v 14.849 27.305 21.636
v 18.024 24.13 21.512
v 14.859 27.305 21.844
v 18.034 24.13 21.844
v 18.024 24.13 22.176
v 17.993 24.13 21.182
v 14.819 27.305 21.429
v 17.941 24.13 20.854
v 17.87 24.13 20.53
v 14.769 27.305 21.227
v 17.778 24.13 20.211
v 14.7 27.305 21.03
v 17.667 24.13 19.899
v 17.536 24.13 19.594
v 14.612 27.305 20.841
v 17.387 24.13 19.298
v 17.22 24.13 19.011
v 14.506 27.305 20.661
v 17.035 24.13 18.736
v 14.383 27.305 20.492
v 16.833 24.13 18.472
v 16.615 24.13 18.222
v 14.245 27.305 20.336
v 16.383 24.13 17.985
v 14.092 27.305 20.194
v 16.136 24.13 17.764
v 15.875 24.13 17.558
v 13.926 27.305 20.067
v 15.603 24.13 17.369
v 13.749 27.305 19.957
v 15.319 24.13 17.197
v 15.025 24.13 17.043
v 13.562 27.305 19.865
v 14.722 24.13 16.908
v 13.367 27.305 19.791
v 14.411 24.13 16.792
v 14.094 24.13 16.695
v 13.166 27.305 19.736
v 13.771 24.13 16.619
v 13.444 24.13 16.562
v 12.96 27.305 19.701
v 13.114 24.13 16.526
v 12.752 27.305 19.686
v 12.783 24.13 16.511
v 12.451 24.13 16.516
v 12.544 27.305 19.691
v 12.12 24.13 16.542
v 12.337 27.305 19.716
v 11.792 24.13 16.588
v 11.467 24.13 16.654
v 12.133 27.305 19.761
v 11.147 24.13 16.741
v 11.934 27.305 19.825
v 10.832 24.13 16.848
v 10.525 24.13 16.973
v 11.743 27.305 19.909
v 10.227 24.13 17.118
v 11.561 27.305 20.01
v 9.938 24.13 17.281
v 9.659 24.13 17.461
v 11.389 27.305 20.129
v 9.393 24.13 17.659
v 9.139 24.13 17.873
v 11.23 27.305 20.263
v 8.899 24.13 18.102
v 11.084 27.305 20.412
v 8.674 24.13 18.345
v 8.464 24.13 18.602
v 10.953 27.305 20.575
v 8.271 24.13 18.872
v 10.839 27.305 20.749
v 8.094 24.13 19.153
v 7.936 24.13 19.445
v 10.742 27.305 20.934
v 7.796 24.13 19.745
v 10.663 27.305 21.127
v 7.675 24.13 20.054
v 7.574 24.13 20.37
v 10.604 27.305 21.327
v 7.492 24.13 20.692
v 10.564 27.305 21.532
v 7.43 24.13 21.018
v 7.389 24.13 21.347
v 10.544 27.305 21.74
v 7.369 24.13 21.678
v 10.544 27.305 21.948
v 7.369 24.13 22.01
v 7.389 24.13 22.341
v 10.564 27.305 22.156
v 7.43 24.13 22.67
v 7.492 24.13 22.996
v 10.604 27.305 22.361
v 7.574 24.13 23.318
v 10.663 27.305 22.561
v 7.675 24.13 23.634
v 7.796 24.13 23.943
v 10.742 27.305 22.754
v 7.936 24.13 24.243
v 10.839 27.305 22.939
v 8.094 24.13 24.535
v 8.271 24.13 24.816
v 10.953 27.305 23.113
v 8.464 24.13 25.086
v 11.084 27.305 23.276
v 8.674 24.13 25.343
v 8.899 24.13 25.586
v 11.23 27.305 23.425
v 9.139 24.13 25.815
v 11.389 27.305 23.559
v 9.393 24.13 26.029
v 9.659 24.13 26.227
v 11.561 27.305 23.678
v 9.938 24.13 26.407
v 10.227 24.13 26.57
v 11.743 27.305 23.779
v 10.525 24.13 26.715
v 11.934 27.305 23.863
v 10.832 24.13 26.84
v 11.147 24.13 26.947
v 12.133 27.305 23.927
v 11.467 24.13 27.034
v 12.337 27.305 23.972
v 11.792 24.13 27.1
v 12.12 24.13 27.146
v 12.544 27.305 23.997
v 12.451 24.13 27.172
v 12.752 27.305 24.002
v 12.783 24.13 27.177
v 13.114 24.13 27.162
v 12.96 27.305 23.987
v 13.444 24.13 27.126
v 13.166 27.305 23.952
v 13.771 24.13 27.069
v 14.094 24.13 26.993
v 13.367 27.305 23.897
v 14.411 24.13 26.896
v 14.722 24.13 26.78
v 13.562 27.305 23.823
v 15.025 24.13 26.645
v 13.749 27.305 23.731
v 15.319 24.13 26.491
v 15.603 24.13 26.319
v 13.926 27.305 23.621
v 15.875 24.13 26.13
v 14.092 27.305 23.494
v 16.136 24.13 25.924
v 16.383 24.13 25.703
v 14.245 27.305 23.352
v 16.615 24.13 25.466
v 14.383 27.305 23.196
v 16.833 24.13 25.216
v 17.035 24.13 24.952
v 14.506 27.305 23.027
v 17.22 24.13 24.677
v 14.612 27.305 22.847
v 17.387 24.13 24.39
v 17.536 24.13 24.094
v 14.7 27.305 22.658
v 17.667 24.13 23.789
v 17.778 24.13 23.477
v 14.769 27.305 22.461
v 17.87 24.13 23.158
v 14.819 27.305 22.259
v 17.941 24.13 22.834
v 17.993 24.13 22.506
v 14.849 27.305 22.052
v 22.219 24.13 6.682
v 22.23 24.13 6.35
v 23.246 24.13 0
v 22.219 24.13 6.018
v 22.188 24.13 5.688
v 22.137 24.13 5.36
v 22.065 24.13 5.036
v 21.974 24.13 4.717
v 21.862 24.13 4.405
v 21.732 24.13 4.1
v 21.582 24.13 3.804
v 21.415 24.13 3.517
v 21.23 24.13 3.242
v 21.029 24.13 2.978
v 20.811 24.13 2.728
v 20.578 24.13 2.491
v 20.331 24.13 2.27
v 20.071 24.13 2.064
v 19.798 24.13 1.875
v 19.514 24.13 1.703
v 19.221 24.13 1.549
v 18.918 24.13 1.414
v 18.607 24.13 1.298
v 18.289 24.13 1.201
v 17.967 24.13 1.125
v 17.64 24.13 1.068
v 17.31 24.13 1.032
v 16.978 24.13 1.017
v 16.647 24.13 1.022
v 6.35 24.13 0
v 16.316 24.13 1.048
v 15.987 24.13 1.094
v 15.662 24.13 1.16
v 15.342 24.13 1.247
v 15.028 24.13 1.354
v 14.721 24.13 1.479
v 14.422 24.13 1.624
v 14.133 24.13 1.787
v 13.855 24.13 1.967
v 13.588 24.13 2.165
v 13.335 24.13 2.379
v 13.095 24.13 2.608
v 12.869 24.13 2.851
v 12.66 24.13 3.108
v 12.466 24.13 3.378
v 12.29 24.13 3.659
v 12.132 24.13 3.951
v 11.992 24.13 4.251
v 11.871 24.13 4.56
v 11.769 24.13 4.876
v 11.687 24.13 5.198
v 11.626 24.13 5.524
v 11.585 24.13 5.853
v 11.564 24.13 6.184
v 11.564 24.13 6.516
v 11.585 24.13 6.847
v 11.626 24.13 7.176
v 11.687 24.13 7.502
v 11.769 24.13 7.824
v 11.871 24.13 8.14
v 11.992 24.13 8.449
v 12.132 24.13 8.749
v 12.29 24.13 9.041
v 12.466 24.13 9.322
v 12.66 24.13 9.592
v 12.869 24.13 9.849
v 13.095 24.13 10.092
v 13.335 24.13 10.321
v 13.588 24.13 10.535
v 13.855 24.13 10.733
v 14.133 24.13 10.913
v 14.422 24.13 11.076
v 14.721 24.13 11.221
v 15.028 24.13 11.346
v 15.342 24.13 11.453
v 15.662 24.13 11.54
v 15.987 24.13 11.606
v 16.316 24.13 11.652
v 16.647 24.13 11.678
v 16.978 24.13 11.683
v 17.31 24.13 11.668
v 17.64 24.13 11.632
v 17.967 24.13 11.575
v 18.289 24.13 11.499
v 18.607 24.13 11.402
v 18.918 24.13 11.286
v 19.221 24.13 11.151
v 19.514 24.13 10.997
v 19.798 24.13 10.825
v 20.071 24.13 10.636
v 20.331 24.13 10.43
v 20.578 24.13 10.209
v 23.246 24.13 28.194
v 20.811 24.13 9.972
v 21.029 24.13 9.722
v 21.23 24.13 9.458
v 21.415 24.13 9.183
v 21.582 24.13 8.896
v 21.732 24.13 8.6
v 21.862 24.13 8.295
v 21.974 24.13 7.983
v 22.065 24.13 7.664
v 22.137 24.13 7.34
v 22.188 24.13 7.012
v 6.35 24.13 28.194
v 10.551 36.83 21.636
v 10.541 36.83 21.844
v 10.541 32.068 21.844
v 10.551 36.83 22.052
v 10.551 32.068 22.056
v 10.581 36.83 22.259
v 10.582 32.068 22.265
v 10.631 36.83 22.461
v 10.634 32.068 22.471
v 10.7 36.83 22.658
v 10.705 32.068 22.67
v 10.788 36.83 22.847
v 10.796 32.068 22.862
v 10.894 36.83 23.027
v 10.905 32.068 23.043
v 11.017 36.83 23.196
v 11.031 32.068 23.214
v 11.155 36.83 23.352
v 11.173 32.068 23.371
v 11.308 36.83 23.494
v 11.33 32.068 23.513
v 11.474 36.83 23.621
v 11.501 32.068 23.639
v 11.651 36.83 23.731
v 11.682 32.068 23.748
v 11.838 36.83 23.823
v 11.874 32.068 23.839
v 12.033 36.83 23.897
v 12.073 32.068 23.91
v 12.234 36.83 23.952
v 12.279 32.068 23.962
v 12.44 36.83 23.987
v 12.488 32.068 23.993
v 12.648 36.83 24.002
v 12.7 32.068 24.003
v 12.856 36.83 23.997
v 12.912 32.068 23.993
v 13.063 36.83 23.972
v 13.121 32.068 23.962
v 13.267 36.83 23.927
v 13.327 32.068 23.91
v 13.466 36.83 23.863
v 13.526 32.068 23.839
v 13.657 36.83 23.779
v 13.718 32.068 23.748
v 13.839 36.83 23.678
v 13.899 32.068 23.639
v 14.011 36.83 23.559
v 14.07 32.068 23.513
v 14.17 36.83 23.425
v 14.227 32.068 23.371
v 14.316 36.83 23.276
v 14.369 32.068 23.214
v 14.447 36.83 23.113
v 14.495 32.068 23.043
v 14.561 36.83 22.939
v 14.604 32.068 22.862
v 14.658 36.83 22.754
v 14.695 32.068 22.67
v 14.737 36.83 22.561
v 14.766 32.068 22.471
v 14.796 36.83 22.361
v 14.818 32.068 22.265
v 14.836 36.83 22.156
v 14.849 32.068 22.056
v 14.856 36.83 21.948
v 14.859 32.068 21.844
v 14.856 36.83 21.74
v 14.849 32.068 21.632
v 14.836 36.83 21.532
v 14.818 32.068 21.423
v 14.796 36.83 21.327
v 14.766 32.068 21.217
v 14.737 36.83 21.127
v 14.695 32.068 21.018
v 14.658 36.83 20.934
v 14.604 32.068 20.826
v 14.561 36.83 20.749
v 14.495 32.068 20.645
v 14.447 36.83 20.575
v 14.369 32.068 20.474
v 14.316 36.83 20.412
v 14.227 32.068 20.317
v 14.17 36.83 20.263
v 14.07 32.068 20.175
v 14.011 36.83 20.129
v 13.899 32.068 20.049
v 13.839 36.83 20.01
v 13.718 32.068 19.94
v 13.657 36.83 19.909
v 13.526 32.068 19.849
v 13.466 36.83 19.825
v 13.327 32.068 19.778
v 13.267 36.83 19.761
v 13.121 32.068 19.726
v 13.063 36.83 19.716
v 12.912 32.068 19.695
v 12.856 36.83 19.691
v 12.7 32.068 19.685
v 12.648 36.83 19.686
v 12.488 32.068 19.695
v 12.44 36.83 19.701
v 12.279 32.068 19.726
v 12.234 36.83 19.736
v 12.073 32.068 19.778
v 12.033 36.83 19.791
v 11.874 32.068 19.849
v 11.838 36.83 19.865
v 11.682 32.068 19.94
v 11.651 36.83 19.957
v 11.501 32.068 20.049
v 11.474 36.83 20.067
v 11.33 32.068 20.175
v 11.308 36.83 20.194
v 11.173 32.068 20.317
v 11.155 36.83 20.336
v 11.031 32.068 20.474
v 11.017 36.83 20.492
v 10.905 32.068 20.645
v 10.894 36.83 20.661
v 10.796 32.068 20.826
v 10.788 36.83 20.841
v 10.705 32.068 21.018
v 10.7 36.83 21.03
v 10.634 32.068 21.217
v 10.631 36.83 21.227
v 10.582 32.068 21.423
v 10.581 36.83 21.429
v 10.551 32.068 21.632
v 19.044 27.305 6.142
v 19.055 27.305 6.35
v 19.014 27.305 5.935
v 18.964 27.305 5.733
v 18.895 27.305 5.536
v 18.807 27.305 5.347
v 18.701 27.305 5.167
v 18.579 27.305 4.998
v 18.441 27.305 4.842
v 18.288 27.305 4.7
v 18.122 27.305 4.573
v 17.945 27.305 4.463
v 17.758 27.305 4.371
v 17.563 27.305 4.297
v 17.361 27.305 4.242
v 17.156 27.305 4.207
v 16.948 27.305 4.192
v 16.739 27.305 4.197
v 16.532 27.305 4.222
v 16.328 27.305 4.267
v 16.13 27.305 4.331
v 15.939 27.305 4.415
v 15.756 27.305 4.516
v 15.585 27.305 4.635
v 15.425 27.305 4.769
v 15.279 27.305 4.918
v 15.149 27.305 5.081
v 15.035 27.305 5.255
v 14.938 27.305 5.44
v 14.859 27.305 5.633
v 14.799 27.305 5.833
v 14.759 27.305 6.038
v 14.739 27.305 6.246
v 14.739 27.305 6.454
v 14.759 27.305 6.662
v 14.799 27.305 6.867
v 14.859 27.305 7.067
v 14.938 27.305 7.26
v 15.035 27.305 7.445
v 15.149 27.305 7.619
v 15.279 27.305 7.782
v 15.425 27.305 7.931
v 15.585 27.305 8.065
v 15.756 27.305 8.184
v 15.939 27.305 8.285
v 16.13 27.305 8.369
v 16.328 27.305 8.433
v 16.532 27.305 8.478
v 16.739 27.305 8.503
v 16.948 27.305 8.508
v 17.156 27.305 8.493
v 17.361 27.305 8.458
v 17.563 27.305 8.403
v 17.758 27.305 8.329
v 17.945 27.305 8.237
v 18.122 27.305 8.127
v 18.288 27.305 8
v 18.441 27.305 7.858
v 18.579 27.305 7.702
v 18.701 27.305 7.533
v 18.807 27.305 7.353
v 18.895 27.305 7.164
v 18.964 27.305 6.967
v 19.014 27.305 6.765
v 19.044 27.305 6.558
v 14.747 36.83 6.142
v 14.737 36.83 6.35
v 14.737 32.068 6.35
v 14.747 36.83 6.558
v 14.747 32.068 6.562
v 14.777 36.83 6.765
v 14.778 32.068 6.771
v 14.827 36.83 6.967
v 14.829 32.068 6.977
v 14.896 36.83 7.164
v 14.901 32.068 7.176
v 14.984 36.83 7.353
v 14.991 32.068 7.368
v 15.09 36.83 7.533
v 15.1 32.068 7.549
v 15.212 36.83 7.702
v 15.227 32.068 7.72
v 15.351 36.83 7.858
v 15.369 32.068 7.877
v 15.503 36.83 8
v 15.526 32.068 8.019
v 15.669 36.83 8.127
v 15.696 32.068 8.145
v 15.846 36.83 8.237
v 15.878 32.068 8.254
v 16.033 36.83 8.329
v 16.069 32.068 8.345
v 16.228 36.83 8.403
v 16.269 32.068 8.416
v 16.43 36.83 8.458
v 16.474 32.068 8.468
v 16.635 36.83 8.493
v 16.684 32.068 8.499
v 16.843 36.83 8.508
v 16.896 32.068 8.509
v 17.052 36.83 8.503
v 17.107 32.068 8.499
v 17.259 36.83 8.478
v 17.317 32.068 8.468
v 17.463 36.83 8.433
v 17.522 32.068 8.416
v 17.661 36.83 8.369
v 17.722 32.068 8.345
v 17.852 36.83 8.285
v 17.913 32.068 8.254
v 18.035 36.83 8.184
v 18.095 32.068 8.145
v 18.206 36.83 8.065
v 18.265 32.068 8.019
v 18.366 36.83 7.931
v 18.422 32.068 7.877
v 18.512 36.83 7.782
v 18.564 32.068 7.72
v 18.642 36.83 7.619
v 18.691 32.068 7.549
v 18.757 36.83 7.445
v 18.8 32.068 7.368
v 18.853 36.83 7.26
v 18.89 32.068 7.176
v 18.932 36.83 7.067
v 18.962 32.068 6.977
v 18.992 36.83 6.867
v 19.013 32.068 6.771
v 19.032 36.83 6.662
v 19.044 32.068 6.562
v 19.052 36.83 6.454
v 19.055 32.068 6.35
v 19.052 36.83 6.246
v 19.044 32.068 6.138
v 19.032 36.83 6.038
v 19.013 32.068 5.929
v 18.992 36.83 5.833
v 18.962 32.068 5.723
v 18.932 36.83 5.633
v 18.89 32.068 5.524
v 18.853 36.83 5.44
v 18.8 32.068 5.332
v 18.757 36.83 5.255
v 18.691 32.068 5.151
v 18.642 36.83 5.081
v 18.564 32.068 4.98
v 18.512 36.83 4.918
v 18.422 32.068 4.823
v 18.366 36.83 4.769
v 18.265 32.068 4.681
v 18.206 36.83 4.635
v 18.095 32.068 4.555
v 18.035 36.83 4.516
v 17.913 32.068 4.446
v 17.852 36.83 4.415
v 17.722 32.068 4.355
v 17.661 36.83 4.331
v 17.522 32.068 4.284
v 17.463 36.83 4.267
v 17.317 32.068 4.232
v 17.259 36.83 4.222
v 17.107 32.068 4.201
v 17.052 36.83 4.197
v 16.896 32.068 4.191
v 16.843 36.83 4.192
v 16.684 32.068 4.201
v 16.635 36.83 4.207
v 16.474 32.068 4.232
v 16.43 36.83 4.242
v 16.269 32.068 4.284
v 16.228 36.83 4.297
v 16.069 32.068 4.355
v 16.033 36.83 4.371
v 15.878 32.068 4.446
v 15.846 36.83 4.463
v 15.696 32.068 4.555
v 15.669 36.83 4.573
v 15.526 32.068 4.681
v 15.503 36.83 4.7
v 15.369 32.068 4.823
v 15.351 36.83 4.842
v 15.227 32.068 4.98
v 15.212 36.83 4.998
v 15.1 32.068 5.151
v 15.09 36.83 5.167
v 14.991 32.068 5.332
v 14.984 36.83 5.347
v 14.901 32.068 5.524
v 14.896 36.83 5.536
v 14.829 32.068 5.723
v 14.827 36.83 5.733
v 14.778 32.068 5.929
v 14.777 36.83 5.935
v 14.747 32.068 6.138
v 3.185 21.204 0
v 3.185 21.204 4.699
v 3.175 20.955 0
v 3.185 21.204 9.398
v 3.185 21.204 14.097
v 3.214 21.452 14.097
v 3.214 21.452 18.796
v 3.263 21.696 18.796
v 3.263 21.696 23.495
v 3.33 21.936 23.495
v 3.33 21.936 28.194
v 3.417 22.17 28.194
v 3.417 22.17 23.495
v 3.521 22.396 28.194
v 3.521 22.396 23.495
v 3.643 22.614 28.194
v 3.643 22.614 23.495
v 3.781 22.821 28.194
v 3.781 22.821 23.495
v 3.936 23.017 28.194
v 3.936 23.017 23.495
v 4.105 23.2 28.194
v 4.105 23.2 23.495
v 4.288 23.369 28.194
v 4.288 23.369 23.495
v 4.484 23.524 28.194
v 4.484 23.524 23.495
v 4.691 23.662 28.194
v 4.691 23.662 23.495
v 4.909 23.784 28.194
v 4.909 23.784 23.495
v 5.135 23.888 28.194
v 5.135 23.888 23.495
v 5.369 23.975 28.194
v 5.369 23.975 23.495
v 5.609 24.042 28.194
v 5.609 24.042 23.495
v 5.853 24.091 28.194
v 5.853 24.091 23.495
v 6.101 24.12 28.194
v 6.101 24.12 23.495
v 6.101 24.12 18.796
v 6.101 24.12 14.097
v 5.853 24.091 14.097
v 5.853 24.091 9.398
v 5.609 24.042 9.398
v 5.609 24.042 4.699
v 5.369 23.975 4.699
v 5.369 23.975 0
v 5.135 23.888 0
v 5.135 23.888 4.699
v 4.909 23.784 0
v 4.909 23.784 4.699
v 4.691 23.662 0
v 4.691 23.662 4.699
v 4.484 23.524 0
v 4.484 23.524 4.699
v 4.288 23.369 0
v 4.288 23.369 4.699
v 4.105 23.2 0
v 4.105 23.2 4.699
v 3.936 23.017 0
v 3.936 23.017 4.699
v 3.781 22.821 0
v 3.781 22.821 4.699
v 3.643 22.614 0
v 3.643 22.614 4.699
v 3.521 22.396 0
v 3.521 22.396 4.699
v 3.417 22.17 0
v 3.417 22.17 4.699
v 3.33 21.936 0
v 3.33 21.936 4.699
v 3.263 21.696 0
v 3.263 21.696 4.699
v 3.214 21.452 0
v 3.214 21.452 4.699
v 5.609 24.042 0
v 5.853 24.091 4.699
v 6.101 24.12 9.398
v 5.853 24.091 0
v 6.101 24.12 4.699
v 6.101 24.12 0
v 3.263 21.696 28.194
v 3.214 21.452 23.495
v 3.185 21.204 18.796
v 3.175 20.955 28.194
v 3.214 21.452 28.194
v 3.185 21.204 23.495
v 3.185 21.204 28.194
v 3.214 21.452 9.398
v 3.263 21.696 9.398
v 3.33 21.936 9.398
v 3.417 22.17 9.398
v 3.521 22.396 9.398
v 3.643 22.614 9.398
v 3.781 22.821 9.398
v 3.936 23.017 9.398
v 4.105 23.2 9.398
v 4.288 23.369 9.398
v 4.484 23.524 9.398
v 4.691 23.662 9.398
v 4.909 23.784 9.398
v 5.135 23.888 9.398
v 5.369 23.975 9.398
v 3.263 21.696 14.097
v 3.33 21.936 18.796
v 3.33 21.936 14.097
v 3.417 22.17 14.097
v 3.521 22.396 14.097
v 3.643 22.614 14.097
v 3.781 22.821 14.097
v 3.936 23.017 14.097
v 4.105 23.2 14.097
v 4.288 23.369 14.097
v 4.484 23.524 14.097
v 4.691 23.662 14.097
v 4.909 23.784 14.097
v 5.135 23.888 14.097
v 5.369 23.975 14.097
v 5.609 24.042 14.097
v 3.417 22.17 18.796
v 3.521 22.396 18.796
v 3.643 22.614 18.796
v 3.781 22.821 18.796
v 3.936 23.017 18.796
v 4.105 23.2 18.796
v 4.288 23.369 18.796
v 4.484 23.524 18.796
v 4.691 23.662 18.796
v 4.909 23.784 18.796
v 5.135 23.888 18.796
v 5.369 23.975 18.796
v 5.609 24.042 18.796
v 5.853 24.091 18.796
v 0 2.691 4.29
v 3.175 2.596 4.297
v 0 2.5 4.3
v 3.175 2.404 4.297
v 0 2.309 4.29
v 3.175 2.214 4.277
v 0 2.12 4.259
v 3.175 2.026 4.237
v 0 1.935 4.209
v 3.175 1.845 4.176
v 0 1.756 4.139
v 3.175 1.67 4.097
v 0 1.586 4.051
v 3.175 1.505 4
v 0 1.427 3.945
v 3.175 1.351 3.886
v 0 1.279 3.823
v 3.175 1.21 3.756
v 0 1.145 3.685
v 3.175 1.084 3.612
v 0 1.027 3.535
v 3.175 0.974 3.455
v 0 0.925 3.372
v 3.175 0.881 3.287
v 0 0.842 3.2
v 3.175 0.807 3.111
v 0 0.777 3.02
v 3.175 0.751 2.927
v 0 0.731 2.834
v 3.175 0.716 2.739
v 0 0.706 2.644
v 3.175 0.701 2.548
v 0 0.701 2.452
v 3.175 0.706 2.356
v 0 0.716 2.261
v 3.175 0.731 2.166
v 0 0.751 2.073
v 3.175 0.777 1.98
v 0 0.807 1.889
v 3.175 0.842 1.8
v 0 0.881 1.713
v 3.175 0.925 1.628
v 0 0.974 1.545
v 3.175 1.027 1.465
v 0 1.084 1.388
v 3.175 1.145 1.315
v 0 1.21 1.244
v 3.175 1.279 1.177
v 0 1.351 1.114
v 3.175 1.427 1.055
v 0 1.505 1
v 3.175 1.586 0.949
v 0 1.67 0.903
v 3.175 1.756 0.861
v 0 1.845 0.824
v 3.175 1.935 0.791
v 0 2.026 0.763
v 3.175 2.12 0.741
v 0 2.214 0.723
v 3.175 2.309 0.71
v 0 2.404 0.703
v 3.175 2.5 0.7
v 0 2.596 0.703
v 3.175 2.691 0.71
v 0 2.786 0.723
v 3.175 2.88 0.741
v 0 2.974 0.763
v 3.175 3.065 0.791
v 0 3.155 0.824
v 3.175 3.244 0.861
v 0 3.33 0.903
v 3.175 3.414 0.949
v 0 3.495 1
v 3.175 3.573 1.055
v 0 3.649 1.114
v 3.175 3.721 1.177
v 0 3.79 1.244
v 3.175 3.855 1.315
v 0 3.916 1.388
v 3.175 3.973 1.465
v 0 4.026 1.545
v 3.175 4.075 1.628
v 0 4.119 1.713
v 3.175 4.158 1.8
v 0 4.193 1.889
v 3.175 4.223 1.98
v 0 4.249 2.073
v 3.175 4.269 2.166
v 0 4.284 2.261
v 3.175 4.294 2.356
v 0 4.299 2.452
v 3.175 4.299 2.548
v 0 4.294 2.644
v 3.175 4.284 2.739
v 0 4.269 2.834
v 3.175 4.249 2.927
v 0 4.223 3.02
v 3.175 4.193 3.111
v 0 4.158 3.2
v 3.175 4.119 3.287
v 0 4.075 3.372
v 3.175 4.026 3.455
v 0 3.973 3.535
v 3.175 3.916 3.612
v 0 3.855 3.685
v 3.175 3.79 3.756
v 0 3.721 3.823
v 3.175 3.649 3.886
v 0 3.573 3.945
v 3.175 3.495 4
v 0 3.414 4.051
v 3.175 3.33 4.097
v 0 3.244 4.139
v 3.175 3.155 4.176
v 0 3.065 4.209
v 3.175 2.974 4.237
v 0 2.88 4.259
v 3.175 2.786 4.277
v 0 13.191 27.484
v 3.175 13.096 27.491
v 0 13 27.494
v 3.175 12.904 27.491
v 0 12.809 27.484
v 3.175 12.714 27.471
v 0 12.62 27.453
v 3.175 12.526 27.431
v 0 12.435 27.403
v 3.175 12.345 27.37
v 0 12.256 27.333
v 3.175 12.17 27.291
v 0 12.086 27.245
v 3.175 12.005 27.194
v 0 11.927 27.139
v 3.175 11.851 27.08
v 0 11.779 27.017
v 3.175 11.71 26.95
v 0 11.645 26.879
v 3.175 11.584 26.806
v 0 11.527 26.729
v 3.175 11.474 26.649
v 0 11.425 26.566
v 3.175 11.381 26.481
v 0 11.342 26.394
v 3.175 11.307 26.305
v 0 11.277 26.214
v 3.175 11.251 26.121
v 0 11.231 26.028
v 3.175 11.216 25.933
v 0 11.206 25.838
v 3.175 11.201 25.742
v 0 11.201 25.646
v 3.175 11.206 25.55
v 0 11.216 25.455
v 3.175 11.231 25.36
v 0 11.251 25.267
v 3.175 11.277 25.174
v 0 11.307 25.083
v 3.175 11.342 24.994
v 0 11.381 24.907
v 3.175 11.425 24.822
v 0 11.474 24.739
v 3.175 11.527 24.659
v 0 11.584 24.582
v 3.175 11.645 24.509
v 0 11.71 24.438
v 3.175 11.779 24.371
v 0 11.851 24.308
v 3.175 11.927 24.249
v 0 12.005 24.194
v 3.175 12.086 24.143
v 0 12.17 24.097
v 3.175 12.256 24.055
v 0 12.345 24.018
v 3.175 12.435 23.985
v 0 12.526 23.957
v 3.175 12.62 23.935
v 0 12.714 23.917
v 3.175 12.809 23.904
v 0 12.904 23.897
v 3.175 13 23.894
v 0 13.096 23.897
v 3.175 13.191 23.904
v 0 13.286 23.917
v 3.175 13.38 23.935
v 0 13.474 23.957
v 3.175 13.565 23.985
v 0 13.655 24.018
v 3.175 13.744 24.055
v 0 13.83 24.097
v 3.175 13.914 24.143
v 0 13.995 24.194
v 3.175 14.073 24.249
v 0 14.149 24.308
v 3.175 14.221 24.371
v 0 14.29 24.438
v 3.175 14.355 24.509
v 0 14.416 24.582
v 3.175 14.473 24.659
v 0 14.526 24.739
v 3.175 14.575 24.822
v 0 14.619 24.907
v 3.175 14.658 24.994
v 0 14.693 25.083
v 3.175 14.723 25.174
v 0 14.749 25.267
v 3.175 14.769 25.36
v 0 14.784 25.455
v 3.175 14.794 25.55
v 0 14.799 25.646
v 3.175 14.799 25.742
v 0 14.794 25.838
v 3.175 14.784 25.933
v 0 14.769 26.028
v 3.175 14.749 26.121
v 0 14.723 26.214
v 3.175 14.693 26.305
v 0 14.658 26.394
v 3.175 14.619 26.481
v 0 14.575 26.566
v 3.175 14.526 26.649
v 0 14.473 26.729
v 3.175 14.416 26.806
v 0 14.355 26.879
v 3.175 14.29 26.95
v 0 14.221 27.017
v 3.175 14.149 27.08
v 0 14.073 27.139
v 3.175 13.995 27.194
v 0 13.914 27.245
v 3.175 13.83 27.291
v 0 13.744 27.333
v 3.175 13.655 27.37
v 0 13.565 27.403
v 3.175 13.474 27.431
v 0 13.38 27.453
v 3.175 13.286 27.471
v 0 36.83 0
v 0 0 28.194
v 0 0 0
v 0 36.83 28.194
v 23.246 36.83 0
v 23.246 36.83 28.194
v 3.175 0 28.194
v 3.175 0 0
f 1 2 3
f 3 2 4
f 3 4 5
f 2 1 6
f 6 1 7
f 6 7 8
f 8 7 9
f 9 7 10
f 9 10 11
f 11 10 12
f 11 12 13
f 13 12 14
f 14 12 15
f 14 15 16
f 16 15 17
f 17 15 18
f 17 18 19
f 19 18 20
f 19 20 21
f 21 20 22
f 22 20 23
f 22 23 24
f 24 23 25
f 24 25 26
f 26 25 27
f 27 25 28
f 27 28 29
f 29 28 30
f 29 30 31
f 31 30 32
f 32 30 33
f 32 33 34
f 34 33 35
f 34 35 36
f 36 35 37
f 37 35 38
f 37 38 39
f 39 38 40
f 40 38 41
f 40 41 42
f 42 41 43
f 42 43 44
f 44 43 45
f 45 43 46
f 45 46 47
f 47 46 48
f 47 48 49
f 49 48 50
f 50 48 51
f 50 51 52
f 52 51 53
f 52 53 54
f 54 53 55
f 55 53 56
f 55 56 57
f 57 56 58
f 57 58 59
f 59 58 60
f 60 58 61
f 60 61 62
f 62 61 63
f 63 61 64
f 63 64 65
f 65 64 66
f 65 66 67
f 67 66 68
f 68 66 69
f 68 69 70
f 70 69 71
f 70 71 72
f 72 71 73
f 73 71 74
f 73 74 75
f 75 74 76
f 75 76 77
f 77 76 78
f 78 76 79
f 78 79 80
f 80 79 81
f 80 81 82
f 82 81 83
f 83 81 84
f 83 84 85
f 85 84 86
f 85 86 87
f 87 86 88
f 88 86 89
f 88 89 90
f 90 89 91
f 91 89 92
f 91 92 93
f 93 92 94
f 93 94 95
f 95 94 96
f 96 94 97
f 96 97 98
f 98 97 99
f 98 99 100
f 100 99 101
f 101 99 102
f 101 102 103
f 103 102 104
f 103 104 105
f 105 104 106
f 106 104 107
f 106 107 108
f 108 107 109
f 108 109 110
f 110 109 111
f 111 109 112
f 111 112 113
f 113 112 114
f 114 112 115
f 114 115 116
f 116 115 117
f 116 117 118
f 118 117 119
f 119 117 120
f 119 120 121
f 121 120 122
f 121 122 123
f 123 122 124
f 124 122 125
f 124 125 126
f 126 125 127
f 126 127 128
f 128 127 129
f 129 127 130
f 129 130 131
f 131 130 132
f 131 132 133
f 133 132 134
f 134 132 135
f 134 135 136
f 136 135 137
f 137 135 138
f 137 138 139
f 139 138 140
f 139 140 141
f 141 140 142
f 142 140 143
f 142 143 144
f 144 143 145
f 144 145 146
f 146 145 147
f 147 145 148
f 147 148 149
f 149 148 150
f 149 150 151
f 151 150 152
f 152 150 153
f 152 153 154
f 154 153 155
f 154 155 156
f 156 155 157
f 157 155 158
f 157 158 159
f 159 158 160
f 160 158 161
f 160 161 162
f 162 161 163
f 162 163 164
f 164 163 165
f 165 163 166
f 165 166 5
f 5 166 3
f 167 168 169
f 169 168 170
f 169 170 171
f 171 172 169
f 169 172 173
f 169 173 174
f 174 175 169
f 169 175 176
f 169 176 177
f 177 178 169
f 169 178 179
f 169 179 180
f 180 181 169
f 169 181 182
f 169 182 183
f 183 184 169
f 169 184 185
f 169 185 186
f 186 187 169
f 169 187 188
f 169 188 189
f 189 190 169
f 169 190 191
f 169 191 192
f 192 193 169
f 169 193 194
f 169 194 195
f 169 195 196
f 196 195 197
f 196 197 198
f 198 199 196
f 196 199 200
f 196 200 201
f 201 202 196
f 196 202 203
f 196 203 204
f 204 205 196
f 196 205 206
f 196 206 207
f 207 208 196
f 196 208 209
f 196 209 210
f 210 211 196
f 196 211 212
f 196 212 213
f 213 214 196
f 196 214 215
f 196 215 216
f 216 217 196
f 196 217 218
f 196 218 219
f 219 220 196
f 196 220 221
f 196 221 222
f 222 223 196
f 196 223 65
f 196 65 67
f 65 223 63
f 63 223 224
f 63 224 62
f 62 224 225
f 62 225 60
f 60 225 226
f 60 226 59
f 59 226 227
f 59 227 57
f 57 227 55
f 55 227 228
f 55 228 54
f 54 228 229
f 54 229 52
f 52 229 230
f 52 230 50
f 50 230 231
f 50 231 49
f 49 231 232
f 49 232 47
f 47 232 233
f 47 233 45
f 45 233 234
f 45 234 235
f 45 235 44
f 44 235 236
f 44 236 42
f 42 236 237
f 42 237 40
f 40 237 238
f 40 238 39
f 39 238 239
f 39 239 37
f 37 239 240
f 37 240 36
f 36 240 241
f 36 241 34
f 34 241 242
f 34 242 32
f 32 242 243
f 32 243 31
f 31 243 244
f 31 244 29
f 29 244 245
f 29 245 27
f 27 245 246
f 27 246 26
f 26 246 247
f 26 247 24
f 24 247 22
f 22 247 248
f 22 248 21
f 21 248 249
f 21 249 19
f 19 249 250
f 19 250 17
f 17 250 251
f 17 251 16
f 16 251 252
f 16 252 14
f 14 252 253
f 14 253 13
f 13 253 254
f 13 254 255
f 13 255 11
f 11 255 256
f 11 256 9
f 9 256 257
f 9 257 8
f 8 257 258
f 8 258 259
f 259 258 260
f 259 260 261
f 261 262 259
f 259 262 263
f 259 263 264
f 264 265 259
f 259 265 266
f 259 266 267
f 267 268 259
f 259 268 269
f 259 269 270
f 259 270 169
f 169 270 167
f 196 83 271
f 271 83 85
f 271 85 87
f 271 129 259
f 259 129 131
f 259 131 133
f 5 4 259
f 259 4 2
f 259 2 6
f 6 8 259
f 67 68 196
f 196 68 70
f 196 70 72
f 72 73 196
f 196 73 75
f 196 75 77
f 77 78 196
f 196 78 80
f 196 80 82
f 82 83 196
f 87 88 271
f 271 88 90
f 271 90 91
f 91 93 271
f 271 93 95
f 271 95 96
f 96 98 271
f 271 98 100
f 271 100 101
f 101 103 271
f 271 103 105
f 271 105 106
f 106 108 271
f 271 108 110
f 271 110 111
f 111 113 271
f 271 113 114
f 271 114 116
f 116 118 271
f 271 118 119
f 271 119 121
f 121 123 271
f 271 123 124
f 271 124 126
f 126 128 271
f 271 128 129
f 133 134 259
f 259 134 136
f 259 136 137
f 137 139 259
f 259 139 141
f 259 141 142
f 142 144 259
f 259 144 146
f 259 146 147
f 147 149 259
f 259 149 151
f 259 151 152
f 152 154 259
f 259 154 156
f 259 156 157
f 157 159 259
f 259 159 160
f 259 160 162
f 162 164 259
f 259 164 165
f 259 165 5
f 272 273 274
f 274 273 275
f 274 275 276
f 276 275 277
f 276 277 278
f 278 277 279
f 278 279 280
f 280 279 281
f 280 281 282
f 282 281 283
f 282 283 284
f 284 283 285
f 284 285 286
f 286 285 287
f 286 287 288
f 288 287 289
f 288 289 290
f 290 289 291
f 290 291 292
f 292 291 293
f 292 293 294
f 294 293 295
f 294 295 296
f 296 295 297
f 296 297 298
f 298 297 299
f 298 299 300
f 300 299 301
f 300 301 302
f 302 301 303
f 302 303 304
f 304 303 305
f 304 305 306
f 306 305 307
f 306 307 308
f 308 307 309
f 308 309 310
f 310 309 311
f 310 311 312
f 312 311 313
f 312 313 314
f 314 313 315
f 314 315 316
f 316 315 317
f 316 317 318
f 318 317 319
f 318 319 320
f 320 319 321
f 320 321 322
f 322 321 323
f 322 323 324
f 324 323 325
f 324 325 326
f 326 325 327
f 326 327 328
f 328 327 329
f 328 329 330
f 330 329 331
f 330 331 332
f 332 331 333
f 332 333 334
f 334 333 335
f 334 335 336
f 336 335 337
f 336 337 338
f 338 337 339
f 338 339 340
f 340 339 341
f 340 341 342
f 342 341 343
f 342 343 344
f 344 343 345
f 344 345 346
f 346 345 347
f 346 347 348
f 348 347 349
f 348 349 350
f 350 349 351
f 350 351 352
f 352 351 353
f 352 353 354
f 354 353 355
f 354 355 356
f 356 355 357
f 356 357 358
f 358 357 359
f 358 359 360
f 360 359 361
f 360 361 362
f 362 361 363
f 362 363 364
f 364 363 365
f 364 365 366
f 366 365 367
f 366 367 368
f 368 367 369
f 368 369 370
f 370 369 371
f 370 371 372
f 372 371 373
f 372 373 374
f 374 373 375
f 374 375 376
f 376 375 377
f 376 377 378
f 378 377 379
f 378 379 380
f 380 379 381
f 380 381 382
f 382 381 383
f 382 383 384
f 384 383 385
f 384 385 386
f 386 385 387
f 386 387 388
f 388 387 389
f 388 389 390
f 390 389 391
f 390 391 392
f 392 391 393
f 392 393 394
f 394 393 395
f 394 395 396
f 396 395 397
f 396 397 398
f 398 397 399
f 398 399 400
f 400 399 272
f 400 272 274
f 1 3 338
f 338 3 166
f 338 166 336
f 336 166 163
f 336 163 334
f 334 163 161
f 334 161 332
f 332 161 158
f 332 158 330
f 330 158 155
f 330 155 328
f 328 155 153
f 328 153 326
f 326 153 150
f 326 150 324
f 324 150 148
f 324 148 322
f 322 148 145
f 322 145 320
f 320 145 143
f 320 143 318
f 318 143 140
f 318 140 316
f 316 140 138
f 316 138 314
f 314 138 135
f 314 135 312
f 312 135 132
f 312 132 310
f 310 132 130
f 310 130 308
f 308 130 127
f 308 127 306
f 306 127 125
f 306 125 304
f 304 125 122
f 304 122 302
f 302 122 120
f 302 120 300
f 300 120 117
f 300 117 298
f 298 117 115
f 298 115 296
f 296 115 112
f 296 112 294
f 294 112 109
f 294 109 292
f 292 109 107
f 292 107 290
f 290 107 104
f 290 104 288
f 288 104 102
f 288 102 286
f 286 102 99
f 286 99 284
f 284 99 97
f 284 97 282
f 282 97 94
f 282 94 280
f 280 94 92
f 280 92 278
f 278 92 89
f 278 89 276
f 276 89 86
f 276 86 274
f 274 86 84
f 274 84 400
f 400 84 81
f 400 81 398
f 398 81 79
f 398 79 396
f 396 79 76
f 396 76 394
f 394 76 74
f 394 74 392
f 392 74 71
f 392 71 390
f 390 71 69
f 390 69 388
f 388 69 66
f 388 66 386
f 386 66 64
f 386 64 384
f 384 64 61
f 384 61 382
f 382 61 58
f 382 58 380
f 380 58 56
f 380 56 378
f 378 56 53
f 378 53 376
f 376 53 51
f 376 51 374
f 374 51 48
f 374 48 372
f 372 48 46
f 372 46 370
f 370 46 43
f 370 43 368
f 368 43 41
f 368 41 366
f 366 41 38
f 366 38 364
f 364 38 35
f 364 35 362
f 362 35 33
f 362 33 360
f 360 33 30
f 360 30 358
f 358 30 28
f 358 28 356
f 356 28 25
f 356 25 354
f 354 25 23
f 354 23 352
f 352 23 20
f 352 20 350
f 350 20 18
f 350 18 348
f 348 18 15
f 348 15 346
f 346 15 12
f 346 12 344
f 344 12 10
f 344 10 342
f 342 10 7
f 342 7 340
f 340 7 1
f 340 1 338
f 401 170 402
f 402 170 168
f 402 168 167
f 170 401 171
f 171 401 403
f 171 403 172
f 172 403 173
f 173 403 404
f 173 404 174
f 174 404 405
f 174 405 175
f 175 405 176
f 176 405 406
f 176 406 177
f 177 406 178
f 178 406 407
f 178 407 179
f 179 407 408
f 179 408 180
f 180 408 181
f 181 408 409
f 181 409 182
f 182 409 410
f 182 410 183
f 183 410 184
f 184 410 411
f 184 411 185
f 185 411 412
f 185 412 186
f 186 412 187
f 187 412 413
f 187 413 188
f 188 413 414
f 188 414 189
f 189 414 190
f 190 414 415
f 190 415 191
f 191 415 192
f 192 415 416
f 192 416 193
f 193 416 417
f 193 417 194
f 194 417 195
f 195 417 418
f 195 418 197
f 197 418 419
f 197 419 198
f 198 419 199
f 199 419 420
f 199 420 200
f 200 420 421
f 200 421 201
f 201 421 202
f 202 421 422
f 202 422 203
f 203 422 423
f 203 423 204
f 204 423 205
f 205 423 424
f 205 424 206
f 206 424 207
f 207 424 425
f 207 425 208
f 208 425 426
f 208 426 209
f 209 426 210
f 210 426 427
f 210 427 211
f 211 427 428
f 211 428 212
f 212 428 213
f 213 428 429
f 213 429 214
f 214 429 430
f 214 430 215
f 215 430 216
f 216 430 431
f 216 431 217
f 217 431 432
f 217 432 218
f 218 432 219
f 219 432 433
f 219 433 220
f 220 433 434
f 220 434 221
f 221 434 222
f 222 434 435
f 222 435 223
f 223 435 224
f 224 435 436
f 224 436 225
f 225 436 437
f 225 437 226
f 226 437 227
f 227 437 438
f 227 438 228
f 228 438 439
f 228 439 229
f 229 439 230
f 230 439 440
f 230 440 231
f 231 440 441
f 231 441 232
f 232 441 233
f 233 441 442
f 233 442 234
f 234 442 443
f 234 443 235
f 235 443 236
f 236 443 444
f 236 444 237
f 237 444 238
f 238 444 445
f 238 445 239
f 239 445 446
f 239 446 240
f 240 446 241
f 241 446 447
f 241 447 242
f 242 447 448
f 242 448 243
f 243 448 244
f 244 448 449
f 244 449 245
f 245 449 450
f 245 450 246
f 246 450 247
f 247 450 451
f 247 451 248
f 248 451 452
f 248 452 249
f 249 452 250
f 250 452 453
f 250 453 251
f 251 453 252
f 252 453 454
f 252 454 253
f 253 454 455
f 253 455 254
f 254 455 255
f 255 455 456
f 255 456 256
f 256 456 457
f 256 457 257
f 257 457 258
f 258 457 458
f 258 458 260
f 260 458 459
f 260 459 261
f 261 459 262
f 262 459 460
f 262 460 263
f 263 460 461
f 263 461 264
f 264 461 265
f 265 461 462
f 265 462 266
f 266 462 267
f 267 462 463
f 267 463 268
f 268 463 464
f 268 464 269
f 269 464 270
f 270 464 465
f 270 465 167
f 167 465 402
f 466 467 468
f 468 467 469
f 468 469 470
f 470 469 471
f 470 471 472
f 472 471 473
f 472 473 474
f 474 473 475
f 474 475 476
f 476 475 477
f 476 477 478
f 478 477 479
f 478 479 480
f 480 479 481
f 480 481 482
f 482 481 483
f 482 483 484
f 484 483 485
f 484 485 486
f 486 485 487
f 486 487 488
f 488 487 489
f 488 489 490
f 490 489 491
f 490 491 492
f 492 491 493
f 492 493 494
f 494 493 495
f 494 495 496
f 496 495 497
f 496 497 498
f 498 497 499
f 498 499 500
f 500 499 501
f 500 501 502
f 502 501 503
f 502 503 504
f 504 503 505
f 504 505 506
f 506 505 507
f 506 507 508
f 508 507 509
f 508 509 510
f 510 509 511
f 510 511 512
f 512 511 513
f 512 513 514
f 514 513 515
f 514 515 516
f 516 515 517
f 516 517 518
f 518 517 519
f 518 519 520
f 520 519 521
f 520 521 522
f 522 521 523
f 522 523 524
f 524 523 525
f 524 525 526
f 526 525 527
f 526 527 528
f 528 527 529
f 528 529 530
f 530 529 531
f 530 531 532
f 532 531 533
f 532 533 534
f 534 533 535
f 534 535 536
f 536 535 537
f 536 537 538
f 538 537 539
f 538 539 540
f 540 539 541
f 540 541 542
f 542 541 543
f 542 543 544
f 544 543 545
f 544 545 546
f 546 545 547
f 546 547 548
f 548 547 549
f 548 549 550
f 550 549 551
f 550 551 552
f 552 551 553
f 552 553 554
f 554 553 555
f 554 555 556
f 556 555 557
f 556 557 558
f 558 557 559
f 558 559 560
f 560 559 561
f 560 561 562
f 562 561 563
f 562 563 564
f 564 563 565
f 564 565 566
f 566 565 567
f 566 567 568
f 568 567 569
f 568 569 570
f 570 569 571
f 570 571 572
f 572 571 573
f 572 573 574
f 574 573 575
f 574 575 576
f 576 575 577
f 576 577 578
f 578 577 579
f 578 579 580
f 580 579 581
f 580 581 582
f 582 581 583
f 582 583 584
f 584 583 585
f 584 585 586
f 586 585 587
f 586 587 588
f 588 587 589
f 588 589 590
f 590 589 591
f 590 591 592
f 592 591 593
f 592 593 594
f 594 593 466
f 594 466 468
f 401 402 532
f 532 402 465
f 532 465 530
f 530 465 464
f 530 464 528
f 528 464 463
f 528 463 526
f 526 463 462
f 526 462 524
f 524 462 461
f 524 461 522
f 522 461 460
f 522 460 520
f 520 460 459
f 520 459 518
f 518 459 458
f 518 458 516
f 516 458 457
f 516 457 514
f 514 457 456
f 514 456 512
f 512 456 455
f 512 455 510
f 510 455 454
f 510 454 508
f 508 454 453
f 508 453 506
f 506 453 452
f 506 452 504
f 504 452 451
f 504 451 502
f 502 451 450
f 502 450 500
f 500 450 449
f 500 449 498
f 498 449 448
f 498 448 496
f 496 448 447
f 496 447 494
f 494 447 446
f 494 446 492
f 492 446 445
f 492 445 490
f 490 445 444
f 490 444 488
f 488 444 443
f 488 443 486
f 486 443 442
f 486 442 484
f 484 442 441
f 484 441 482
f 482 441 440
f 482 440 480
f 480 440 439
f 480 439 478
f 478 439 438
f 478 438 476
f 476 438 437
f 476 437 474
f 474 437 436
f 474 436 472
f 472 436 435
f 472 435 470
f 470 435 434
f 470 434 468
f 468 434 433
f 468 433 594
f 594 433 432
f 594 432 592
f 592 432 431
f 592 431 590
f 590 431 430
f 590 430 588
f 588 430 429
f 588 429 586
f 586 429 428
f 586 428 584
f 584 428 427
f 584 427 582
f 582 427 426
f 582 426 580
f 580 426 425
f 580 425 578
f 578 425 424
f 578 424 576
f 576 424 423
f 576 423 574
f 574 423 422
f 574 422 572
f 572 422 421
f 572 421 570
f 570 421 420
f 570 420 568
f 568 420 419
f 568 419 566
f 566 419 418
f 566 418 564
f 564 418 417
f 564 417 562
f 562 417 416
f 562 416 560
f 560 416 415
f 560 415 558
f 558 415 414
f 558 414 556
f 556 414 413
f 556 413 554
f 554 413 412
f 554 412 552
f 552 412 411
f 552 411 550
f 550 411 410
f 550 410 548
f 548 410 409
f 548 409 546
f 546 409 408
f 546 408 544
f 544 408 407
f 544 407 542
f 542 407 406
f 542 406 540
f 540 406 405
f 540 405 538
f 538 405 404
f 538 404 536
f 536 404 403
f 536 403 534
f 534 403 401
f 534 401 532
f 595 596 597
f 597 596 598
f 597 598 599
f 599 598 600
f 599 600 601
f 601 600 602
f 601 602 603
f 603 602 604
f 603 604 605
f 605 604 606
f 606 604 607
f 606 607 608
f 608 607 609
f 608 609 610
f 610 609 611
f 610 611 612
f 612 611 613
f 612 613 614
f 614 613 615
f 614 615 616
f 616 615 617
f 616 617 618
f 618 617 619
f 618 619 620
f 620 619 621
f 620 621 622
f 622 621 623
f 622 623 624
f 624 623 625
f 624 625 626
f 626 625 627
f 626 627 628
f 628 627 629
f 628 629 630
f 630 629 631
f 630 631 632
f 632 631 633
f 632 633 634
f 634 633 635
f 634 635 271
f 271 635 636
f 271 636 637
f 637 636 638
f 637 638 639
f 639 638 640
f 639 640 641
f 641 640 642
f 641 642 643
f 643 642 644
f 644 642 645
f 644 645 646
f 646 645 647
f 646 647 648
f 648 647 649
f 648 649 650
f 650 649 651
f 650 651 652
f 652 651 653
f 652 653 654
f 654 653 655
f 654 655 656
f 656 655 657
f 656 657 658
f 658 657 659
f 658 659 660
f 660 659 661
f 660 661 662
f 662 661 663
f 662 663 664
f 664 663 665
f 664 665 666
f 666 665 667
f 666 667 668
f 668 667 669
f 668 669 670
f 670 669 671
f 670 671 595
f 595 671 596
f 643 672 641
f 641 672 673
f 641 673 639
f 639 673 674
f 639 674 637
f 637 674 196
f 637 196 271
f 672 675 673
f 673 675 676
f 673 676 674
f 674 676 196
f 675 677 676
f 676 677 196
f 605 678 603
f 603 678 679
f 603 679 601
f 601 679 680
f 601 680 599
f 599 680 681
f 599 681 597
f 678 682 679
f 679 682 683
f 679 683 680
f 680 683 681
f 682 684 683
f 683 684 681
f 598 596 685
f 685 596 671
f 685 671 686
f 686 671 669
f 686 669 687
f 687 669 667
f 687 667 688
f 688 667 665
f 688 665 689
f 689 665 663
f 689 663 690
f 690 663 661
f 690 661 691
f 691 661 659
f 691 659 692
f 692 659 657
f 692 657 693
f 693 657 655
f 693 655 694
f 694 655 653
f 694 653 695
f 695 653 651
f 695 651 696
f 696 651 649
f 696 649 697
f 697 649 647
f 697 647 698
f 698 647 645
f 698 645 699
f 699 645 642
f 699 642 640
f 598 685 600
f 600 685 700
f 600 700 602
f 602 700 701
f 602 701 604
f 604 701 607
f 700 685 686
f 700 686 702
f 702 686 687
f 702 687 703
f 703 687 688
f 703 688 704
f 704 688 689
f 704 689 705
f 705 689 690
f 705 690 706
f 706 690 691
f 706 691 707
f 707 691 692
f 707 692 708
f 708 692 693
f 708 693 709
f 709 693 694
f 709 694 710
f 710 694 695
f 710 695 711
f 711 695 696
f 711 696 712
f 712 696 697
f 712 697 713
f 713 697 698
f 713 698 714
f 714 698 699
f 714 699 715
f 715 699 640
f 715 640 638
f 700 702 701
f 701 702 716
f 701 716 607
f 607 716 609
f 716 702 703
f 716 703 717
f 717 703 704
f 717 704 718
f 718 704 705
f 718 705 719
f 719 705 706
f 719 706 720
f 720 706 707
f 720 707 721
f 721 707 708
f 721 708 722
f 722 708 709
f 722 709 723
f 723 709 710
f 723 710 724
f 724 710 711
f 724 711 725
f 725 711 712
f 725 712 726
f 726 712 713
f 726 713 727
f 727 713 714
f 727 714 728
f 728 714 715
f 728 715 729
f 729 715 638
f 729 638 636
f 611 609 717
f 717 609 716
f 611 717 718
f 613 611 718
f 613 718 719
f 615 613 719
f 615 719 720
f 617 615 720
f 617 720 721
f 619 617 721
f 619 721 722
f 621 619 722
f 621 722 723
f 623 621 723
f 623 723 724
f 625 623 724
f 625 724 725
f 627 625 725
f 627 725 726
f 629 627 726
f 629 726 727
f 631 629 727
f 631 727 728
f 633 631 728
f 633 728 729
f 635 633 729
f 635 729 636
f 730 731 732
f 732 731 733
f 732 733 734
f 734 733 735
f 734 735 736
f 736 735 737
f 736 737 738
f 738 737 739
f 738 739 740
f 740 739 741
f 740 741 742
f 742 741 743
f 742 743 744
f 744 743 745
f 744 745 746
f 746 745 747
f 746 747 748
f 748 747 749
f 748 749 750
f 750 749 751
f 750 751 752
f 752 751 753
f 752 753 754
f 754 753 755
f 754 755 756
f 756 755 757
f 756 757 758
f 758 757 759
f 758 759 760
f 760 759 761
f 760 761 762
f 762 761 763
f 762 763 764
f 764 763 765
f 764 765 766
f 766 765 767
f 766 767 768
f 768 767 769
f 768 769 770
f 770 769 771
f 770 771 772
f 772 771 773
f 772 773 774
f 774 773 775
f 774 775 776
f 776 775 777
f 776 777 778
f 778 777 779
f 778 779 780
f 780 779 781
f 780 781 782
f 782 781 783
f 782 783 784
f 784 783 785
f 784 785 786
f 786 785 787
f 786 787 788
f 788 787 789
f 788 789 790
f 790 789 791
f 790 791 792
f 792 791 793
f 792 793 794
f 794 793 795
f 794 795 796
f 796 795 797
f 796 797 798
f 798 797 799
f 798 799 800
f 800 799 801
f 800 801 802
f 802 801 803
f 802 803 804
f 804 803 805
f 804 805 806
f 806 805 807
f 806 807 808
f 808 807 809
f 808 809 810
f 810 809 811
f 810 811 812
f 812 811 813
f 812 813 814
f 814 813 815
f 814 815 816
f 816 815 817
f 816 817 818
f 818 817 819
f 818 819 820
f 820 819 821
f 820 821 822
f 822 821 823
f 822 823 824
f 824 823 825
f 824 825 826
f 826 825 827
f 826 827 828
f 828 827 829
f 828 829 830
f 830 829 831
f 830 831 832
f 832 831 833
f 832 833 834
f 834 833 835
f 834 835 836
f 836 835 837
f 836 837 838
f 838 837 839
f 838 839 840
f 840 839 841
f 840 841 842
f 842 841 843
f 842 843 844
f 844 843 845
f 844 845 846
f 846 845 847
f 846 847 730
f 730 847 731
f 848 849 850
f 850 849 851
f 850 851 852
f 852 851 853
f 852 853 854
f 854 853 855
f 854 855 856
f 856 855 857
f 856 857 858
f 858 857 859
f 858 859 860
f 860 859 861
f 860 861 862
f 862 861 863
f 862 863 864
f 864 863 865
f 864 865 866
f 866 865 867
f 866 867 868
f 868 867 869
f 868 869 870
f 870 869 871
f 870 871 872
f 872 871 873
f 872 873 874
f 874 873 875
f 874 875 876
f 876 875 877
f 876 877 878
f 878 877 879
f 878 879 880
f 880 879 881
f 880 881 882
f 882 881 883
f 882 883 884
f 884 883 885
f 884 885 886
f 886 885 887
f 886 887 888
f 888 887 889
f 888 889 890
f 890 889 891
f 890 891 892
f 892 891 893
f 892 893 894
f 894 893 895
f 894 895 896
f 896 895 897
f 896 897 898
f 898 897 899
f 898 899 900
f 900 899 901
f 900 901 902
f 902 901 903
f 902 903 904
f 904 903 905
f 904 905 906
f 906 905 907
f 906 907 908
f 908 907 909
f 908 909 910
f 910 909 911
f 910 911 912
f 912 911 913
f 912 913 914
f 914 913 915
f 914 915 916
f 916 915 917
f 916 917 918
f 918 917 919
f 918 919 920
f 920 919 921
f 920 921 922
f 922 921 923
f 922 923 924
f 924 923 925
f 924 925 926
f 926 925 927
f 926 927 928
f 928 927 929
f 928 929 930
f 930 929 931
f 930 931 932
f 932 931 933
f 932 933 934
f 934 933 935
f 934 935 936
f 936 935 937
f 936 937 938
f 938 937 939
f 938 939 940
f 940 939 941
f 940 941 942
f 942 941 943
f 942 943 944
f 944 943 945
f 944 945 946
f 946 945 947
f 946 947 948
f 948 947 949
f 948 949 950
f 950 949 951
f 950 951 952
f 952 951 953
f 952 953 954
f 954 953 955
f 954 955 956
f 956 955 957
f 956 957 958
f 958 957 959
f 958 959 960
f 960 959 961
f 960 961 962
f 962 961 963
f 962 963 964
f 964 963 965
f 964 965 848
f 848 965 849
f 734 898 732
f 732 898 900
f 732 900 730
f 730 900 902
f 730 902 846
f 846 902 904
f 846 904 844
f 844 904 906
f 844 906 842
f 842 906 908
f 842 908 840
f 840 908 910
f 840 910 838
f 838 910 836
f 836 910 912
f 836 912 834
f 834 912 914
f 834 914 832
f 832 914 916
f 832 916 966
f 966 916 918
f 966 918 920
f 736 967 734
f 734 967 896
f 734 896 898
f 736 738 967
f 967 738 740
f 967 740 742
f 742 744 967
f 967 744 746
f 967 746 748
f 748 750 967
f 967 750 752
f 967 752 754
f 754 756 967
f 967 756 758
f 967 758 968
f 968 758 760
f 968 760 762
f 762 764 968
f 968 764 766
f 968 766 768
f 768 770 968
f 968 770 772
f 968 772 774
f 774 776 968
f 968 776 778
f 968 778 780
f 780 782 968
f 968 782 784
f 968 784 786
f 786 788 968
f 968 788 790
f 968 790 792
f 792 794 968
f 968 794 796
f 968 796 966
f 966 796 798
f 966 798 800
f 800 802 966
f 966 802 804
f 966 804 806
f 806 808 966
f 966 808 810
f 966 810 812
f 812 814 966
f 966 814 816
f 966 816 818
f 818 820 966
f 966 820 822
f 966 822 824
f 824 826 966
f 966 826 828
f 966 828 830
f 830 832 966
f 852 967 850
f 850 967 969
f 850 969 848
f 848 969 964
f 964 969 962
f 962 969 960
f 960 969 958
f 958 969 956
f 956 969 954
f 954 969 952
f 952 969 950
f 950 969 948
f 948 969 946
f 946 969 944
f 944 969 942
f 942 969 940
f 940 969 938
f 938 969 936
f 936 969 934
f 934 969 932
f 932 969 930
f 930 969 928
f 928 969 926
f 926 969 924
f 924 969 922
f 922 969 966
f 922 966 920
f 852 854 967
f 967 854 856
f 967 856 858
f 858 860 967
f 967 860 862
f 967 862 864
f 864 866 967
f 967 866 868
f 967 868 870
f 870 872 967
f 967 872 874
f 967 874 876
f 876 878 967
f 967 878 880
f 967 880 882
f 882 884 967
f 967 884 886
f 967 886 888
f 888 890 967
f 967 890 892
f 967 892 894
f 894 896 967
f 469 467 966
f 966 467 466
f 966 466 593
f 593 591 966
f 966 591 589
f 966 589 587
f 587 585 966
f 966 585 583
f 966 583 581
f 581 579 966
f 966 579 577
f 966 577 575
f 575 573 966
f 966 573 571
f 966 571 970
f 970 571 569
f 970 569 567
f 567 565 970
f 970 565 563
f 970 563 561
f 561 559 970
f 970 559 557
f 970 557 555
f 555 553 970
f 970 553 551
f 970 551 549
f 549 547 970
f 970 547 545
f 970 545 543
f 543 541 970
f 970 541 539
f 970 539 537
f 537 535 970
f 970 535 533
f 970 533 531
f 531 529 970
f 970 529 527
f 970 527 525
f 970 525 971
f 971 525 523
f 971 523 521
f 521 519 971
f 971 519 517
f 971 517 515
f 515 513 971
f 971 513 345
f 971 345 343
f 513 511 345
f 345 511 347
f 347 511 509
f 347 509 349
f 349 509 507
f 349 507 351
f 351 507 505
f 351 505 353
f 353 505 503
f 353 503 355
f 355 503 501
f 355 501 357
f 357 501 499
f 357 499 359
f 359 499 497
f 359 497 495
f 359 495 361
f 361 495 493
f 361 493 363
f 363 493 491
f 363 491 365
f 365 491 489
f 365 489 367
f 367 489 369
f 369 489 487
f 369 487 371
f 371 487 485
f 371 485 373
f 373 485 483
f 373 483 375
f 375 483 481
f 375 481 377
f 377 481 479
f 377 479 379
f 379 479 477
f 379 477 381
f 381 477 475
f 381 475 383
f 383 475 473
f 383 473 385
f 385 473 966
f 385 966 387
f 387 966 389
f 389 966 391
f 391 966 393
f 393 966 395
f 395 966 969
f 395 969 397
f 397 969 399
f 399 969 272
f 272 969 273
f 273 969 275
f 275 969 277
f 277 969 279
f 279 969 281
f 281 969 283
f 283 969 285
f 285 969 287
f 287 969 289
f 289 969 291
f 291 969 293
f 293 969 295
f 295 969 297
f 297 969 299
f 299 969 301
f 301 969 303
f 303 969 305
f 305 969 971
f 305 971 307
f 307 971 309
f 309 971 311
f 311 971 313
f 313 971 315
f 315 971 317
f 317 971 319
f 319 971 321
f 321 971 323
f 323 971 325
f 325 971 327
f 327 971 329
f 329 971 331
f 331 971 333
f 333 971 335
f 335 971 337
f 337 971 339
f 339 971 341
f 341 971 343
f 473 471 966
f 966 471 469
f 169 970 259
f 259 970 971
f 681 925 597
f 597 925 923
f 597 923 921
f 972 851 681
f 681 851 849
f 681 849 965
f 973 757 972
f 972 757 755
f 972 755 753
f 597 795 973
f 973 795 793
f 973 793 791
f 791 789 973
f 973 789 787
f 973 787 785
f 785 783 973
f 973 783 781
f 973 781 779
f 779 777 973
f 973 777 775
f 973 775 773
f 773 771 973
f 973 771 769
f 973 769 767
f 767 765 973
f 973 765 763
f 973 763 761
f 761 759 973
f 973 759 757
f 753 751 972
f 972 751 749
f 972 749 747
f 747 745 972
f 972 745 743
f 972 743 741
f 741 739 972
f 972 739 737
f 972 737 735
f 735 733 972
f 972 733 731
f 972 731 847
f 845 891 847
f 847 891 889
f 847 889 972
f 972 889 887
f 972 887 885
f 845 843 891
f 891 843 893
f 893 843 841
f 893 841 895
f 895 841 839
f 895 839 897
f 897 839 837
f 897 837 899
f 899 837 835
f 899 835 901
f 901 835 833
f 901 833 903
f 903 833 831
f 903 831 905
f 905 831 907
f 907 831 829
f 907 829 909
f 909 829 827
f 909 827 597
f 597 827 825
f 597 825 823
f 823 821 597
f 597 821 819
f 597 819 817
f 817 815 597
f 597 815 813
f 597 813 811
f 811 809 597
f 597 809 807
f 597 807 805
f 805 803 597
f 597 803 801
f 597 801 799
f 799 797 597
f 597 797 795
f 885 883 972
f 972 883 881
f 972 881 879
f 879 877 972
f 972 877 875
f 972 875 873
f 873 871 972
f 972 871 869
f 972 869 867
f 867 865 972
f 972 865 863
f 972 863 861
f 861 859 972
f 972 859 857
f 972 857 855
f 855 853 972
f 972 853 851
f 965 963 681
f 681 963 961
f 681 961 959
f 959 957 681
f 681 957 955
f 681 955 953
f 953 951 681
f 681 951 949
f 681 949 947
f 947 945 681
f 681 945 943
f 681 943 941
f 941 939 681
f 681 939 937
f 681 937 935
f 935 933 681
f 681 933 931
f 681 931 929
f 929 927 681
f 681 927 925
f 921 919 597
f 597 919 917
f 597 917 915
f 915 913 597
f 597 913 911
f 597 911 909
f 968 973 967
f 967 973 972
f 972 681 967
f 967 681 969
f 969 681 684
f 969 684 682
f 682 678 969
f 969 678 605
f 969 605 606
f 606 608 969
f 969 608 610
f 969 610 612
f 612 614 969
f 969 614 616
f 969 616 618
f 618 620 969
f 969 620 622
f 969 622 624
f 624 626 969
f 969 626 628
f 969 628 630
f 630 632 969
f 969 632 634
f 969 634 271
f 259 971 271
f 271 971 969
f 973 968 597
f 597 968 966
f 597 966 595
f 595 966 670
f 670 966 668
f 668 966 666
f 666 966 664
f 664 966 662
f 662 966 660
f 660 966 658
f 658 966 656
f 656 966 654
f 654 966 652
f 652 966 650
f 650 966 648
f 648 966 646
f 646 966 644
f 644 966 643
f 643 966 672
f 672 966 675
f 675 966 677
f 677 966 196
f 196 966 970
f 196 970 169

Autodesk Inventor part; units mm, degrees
ref_plane "YZ Plane" through (0, 0, 0) normal (1, 0, 0) x (0, 1, 0)
ref_plane "XZ Plane" through (0, 0, 0) normal (0, 1, 0) x (-1, 0, 0)
ref_plane "XY Plane" through (0, 0, 0) normal (0, 0, 1) x (1, 0, 0)
sketch "Sketch1" plane through (0, 0, 0) normal (0, 0, 1) x (1, 0, 0)
  line L0 (0, 0) -> (3.175, 0)
  line L1 (3.175, 0) -> (3.175, 24.13)
  line L2 (0, 36.83) -> (0, 0)
  line L3 (23.2455, 36.83) -> (23.2455, 24.13)
  line L4 (23.2455, 24.13) -> (3.175, 24.13)
  line L5 (0, 36.83) -> (23.2455, 36.83)
  dimension "d0" = 12.7
  dimension "d1" = 3.175
  dimension "d2" = 36.83
extrude "Extrusion1" add sketch "Sketch1" along normal blind 28.194
sketch "Sketch2" plane through (3.175, 0, 0) normal (1, 0, 0) x (0, 0, -1)
  circle A0 centre (-2.5, 2.5) radius 1.8
  circle A1 centre (-25.694, 13) radius 1.8
  line L0 (0, 0) -> (0, 24.13) projected
  line L1 (0, 0) -> (-28.194, 0) projected
  line L2 (-28.194, 0) -> (-28.194, 24.13) projected
  dimension "d5" = 3.6
  dimension "d6" = 3.6
  dimension "d7" = 2.5
  dimension "d8" = 2.5
  dimension "d9" = 2.5
  dimension "d10" = 13
extrude "Extrusion2" cut sketch "Sketch2" against normal blind 28.194
fillet "Fillet1" radius 3.175 1 edges at (3.175, 24.13, 14.097)
sketch "Sketch3" plane through (23.2455, 24.13, 0) normal (0, -1, 0) x (1, 0, 0)
  line L0 (-16.8955, 0) -> (-16.8955, 28.194) projected
  line L1 (-16.8955, 0) -> (0, 0) projected
  line L2 (0, 0) -> (0, 28.194) projected
  line L3 (-16.8955, 28.194) -> (0, 28.194) projected
  circle A0 centre (-10.5455, 21.844) radius 2.159
  circle A1 centre (-6.35, 6.35) radius 2.159
  point P0 (-23.2455, 0)
  dimension "d14" = 4.318
  dimension "d15" = 4.318
  dimension "d16" = 6.35
  dimension "d18" = 6.35
  dimension "d19" = 6.35
  dimension "d20" = 6.35
extrude "Extrusion3" cut sketch "Sketch3" against normal blind 28.194 contours A0 | A1
chamfer "Chamfer1" distance 3.175 angle 45 2 edges at (14.7365, 24.13, 6.35) (10.541, 24.13, 21.844)
properties part number "Limit Switch Top V1_3DPrint"
